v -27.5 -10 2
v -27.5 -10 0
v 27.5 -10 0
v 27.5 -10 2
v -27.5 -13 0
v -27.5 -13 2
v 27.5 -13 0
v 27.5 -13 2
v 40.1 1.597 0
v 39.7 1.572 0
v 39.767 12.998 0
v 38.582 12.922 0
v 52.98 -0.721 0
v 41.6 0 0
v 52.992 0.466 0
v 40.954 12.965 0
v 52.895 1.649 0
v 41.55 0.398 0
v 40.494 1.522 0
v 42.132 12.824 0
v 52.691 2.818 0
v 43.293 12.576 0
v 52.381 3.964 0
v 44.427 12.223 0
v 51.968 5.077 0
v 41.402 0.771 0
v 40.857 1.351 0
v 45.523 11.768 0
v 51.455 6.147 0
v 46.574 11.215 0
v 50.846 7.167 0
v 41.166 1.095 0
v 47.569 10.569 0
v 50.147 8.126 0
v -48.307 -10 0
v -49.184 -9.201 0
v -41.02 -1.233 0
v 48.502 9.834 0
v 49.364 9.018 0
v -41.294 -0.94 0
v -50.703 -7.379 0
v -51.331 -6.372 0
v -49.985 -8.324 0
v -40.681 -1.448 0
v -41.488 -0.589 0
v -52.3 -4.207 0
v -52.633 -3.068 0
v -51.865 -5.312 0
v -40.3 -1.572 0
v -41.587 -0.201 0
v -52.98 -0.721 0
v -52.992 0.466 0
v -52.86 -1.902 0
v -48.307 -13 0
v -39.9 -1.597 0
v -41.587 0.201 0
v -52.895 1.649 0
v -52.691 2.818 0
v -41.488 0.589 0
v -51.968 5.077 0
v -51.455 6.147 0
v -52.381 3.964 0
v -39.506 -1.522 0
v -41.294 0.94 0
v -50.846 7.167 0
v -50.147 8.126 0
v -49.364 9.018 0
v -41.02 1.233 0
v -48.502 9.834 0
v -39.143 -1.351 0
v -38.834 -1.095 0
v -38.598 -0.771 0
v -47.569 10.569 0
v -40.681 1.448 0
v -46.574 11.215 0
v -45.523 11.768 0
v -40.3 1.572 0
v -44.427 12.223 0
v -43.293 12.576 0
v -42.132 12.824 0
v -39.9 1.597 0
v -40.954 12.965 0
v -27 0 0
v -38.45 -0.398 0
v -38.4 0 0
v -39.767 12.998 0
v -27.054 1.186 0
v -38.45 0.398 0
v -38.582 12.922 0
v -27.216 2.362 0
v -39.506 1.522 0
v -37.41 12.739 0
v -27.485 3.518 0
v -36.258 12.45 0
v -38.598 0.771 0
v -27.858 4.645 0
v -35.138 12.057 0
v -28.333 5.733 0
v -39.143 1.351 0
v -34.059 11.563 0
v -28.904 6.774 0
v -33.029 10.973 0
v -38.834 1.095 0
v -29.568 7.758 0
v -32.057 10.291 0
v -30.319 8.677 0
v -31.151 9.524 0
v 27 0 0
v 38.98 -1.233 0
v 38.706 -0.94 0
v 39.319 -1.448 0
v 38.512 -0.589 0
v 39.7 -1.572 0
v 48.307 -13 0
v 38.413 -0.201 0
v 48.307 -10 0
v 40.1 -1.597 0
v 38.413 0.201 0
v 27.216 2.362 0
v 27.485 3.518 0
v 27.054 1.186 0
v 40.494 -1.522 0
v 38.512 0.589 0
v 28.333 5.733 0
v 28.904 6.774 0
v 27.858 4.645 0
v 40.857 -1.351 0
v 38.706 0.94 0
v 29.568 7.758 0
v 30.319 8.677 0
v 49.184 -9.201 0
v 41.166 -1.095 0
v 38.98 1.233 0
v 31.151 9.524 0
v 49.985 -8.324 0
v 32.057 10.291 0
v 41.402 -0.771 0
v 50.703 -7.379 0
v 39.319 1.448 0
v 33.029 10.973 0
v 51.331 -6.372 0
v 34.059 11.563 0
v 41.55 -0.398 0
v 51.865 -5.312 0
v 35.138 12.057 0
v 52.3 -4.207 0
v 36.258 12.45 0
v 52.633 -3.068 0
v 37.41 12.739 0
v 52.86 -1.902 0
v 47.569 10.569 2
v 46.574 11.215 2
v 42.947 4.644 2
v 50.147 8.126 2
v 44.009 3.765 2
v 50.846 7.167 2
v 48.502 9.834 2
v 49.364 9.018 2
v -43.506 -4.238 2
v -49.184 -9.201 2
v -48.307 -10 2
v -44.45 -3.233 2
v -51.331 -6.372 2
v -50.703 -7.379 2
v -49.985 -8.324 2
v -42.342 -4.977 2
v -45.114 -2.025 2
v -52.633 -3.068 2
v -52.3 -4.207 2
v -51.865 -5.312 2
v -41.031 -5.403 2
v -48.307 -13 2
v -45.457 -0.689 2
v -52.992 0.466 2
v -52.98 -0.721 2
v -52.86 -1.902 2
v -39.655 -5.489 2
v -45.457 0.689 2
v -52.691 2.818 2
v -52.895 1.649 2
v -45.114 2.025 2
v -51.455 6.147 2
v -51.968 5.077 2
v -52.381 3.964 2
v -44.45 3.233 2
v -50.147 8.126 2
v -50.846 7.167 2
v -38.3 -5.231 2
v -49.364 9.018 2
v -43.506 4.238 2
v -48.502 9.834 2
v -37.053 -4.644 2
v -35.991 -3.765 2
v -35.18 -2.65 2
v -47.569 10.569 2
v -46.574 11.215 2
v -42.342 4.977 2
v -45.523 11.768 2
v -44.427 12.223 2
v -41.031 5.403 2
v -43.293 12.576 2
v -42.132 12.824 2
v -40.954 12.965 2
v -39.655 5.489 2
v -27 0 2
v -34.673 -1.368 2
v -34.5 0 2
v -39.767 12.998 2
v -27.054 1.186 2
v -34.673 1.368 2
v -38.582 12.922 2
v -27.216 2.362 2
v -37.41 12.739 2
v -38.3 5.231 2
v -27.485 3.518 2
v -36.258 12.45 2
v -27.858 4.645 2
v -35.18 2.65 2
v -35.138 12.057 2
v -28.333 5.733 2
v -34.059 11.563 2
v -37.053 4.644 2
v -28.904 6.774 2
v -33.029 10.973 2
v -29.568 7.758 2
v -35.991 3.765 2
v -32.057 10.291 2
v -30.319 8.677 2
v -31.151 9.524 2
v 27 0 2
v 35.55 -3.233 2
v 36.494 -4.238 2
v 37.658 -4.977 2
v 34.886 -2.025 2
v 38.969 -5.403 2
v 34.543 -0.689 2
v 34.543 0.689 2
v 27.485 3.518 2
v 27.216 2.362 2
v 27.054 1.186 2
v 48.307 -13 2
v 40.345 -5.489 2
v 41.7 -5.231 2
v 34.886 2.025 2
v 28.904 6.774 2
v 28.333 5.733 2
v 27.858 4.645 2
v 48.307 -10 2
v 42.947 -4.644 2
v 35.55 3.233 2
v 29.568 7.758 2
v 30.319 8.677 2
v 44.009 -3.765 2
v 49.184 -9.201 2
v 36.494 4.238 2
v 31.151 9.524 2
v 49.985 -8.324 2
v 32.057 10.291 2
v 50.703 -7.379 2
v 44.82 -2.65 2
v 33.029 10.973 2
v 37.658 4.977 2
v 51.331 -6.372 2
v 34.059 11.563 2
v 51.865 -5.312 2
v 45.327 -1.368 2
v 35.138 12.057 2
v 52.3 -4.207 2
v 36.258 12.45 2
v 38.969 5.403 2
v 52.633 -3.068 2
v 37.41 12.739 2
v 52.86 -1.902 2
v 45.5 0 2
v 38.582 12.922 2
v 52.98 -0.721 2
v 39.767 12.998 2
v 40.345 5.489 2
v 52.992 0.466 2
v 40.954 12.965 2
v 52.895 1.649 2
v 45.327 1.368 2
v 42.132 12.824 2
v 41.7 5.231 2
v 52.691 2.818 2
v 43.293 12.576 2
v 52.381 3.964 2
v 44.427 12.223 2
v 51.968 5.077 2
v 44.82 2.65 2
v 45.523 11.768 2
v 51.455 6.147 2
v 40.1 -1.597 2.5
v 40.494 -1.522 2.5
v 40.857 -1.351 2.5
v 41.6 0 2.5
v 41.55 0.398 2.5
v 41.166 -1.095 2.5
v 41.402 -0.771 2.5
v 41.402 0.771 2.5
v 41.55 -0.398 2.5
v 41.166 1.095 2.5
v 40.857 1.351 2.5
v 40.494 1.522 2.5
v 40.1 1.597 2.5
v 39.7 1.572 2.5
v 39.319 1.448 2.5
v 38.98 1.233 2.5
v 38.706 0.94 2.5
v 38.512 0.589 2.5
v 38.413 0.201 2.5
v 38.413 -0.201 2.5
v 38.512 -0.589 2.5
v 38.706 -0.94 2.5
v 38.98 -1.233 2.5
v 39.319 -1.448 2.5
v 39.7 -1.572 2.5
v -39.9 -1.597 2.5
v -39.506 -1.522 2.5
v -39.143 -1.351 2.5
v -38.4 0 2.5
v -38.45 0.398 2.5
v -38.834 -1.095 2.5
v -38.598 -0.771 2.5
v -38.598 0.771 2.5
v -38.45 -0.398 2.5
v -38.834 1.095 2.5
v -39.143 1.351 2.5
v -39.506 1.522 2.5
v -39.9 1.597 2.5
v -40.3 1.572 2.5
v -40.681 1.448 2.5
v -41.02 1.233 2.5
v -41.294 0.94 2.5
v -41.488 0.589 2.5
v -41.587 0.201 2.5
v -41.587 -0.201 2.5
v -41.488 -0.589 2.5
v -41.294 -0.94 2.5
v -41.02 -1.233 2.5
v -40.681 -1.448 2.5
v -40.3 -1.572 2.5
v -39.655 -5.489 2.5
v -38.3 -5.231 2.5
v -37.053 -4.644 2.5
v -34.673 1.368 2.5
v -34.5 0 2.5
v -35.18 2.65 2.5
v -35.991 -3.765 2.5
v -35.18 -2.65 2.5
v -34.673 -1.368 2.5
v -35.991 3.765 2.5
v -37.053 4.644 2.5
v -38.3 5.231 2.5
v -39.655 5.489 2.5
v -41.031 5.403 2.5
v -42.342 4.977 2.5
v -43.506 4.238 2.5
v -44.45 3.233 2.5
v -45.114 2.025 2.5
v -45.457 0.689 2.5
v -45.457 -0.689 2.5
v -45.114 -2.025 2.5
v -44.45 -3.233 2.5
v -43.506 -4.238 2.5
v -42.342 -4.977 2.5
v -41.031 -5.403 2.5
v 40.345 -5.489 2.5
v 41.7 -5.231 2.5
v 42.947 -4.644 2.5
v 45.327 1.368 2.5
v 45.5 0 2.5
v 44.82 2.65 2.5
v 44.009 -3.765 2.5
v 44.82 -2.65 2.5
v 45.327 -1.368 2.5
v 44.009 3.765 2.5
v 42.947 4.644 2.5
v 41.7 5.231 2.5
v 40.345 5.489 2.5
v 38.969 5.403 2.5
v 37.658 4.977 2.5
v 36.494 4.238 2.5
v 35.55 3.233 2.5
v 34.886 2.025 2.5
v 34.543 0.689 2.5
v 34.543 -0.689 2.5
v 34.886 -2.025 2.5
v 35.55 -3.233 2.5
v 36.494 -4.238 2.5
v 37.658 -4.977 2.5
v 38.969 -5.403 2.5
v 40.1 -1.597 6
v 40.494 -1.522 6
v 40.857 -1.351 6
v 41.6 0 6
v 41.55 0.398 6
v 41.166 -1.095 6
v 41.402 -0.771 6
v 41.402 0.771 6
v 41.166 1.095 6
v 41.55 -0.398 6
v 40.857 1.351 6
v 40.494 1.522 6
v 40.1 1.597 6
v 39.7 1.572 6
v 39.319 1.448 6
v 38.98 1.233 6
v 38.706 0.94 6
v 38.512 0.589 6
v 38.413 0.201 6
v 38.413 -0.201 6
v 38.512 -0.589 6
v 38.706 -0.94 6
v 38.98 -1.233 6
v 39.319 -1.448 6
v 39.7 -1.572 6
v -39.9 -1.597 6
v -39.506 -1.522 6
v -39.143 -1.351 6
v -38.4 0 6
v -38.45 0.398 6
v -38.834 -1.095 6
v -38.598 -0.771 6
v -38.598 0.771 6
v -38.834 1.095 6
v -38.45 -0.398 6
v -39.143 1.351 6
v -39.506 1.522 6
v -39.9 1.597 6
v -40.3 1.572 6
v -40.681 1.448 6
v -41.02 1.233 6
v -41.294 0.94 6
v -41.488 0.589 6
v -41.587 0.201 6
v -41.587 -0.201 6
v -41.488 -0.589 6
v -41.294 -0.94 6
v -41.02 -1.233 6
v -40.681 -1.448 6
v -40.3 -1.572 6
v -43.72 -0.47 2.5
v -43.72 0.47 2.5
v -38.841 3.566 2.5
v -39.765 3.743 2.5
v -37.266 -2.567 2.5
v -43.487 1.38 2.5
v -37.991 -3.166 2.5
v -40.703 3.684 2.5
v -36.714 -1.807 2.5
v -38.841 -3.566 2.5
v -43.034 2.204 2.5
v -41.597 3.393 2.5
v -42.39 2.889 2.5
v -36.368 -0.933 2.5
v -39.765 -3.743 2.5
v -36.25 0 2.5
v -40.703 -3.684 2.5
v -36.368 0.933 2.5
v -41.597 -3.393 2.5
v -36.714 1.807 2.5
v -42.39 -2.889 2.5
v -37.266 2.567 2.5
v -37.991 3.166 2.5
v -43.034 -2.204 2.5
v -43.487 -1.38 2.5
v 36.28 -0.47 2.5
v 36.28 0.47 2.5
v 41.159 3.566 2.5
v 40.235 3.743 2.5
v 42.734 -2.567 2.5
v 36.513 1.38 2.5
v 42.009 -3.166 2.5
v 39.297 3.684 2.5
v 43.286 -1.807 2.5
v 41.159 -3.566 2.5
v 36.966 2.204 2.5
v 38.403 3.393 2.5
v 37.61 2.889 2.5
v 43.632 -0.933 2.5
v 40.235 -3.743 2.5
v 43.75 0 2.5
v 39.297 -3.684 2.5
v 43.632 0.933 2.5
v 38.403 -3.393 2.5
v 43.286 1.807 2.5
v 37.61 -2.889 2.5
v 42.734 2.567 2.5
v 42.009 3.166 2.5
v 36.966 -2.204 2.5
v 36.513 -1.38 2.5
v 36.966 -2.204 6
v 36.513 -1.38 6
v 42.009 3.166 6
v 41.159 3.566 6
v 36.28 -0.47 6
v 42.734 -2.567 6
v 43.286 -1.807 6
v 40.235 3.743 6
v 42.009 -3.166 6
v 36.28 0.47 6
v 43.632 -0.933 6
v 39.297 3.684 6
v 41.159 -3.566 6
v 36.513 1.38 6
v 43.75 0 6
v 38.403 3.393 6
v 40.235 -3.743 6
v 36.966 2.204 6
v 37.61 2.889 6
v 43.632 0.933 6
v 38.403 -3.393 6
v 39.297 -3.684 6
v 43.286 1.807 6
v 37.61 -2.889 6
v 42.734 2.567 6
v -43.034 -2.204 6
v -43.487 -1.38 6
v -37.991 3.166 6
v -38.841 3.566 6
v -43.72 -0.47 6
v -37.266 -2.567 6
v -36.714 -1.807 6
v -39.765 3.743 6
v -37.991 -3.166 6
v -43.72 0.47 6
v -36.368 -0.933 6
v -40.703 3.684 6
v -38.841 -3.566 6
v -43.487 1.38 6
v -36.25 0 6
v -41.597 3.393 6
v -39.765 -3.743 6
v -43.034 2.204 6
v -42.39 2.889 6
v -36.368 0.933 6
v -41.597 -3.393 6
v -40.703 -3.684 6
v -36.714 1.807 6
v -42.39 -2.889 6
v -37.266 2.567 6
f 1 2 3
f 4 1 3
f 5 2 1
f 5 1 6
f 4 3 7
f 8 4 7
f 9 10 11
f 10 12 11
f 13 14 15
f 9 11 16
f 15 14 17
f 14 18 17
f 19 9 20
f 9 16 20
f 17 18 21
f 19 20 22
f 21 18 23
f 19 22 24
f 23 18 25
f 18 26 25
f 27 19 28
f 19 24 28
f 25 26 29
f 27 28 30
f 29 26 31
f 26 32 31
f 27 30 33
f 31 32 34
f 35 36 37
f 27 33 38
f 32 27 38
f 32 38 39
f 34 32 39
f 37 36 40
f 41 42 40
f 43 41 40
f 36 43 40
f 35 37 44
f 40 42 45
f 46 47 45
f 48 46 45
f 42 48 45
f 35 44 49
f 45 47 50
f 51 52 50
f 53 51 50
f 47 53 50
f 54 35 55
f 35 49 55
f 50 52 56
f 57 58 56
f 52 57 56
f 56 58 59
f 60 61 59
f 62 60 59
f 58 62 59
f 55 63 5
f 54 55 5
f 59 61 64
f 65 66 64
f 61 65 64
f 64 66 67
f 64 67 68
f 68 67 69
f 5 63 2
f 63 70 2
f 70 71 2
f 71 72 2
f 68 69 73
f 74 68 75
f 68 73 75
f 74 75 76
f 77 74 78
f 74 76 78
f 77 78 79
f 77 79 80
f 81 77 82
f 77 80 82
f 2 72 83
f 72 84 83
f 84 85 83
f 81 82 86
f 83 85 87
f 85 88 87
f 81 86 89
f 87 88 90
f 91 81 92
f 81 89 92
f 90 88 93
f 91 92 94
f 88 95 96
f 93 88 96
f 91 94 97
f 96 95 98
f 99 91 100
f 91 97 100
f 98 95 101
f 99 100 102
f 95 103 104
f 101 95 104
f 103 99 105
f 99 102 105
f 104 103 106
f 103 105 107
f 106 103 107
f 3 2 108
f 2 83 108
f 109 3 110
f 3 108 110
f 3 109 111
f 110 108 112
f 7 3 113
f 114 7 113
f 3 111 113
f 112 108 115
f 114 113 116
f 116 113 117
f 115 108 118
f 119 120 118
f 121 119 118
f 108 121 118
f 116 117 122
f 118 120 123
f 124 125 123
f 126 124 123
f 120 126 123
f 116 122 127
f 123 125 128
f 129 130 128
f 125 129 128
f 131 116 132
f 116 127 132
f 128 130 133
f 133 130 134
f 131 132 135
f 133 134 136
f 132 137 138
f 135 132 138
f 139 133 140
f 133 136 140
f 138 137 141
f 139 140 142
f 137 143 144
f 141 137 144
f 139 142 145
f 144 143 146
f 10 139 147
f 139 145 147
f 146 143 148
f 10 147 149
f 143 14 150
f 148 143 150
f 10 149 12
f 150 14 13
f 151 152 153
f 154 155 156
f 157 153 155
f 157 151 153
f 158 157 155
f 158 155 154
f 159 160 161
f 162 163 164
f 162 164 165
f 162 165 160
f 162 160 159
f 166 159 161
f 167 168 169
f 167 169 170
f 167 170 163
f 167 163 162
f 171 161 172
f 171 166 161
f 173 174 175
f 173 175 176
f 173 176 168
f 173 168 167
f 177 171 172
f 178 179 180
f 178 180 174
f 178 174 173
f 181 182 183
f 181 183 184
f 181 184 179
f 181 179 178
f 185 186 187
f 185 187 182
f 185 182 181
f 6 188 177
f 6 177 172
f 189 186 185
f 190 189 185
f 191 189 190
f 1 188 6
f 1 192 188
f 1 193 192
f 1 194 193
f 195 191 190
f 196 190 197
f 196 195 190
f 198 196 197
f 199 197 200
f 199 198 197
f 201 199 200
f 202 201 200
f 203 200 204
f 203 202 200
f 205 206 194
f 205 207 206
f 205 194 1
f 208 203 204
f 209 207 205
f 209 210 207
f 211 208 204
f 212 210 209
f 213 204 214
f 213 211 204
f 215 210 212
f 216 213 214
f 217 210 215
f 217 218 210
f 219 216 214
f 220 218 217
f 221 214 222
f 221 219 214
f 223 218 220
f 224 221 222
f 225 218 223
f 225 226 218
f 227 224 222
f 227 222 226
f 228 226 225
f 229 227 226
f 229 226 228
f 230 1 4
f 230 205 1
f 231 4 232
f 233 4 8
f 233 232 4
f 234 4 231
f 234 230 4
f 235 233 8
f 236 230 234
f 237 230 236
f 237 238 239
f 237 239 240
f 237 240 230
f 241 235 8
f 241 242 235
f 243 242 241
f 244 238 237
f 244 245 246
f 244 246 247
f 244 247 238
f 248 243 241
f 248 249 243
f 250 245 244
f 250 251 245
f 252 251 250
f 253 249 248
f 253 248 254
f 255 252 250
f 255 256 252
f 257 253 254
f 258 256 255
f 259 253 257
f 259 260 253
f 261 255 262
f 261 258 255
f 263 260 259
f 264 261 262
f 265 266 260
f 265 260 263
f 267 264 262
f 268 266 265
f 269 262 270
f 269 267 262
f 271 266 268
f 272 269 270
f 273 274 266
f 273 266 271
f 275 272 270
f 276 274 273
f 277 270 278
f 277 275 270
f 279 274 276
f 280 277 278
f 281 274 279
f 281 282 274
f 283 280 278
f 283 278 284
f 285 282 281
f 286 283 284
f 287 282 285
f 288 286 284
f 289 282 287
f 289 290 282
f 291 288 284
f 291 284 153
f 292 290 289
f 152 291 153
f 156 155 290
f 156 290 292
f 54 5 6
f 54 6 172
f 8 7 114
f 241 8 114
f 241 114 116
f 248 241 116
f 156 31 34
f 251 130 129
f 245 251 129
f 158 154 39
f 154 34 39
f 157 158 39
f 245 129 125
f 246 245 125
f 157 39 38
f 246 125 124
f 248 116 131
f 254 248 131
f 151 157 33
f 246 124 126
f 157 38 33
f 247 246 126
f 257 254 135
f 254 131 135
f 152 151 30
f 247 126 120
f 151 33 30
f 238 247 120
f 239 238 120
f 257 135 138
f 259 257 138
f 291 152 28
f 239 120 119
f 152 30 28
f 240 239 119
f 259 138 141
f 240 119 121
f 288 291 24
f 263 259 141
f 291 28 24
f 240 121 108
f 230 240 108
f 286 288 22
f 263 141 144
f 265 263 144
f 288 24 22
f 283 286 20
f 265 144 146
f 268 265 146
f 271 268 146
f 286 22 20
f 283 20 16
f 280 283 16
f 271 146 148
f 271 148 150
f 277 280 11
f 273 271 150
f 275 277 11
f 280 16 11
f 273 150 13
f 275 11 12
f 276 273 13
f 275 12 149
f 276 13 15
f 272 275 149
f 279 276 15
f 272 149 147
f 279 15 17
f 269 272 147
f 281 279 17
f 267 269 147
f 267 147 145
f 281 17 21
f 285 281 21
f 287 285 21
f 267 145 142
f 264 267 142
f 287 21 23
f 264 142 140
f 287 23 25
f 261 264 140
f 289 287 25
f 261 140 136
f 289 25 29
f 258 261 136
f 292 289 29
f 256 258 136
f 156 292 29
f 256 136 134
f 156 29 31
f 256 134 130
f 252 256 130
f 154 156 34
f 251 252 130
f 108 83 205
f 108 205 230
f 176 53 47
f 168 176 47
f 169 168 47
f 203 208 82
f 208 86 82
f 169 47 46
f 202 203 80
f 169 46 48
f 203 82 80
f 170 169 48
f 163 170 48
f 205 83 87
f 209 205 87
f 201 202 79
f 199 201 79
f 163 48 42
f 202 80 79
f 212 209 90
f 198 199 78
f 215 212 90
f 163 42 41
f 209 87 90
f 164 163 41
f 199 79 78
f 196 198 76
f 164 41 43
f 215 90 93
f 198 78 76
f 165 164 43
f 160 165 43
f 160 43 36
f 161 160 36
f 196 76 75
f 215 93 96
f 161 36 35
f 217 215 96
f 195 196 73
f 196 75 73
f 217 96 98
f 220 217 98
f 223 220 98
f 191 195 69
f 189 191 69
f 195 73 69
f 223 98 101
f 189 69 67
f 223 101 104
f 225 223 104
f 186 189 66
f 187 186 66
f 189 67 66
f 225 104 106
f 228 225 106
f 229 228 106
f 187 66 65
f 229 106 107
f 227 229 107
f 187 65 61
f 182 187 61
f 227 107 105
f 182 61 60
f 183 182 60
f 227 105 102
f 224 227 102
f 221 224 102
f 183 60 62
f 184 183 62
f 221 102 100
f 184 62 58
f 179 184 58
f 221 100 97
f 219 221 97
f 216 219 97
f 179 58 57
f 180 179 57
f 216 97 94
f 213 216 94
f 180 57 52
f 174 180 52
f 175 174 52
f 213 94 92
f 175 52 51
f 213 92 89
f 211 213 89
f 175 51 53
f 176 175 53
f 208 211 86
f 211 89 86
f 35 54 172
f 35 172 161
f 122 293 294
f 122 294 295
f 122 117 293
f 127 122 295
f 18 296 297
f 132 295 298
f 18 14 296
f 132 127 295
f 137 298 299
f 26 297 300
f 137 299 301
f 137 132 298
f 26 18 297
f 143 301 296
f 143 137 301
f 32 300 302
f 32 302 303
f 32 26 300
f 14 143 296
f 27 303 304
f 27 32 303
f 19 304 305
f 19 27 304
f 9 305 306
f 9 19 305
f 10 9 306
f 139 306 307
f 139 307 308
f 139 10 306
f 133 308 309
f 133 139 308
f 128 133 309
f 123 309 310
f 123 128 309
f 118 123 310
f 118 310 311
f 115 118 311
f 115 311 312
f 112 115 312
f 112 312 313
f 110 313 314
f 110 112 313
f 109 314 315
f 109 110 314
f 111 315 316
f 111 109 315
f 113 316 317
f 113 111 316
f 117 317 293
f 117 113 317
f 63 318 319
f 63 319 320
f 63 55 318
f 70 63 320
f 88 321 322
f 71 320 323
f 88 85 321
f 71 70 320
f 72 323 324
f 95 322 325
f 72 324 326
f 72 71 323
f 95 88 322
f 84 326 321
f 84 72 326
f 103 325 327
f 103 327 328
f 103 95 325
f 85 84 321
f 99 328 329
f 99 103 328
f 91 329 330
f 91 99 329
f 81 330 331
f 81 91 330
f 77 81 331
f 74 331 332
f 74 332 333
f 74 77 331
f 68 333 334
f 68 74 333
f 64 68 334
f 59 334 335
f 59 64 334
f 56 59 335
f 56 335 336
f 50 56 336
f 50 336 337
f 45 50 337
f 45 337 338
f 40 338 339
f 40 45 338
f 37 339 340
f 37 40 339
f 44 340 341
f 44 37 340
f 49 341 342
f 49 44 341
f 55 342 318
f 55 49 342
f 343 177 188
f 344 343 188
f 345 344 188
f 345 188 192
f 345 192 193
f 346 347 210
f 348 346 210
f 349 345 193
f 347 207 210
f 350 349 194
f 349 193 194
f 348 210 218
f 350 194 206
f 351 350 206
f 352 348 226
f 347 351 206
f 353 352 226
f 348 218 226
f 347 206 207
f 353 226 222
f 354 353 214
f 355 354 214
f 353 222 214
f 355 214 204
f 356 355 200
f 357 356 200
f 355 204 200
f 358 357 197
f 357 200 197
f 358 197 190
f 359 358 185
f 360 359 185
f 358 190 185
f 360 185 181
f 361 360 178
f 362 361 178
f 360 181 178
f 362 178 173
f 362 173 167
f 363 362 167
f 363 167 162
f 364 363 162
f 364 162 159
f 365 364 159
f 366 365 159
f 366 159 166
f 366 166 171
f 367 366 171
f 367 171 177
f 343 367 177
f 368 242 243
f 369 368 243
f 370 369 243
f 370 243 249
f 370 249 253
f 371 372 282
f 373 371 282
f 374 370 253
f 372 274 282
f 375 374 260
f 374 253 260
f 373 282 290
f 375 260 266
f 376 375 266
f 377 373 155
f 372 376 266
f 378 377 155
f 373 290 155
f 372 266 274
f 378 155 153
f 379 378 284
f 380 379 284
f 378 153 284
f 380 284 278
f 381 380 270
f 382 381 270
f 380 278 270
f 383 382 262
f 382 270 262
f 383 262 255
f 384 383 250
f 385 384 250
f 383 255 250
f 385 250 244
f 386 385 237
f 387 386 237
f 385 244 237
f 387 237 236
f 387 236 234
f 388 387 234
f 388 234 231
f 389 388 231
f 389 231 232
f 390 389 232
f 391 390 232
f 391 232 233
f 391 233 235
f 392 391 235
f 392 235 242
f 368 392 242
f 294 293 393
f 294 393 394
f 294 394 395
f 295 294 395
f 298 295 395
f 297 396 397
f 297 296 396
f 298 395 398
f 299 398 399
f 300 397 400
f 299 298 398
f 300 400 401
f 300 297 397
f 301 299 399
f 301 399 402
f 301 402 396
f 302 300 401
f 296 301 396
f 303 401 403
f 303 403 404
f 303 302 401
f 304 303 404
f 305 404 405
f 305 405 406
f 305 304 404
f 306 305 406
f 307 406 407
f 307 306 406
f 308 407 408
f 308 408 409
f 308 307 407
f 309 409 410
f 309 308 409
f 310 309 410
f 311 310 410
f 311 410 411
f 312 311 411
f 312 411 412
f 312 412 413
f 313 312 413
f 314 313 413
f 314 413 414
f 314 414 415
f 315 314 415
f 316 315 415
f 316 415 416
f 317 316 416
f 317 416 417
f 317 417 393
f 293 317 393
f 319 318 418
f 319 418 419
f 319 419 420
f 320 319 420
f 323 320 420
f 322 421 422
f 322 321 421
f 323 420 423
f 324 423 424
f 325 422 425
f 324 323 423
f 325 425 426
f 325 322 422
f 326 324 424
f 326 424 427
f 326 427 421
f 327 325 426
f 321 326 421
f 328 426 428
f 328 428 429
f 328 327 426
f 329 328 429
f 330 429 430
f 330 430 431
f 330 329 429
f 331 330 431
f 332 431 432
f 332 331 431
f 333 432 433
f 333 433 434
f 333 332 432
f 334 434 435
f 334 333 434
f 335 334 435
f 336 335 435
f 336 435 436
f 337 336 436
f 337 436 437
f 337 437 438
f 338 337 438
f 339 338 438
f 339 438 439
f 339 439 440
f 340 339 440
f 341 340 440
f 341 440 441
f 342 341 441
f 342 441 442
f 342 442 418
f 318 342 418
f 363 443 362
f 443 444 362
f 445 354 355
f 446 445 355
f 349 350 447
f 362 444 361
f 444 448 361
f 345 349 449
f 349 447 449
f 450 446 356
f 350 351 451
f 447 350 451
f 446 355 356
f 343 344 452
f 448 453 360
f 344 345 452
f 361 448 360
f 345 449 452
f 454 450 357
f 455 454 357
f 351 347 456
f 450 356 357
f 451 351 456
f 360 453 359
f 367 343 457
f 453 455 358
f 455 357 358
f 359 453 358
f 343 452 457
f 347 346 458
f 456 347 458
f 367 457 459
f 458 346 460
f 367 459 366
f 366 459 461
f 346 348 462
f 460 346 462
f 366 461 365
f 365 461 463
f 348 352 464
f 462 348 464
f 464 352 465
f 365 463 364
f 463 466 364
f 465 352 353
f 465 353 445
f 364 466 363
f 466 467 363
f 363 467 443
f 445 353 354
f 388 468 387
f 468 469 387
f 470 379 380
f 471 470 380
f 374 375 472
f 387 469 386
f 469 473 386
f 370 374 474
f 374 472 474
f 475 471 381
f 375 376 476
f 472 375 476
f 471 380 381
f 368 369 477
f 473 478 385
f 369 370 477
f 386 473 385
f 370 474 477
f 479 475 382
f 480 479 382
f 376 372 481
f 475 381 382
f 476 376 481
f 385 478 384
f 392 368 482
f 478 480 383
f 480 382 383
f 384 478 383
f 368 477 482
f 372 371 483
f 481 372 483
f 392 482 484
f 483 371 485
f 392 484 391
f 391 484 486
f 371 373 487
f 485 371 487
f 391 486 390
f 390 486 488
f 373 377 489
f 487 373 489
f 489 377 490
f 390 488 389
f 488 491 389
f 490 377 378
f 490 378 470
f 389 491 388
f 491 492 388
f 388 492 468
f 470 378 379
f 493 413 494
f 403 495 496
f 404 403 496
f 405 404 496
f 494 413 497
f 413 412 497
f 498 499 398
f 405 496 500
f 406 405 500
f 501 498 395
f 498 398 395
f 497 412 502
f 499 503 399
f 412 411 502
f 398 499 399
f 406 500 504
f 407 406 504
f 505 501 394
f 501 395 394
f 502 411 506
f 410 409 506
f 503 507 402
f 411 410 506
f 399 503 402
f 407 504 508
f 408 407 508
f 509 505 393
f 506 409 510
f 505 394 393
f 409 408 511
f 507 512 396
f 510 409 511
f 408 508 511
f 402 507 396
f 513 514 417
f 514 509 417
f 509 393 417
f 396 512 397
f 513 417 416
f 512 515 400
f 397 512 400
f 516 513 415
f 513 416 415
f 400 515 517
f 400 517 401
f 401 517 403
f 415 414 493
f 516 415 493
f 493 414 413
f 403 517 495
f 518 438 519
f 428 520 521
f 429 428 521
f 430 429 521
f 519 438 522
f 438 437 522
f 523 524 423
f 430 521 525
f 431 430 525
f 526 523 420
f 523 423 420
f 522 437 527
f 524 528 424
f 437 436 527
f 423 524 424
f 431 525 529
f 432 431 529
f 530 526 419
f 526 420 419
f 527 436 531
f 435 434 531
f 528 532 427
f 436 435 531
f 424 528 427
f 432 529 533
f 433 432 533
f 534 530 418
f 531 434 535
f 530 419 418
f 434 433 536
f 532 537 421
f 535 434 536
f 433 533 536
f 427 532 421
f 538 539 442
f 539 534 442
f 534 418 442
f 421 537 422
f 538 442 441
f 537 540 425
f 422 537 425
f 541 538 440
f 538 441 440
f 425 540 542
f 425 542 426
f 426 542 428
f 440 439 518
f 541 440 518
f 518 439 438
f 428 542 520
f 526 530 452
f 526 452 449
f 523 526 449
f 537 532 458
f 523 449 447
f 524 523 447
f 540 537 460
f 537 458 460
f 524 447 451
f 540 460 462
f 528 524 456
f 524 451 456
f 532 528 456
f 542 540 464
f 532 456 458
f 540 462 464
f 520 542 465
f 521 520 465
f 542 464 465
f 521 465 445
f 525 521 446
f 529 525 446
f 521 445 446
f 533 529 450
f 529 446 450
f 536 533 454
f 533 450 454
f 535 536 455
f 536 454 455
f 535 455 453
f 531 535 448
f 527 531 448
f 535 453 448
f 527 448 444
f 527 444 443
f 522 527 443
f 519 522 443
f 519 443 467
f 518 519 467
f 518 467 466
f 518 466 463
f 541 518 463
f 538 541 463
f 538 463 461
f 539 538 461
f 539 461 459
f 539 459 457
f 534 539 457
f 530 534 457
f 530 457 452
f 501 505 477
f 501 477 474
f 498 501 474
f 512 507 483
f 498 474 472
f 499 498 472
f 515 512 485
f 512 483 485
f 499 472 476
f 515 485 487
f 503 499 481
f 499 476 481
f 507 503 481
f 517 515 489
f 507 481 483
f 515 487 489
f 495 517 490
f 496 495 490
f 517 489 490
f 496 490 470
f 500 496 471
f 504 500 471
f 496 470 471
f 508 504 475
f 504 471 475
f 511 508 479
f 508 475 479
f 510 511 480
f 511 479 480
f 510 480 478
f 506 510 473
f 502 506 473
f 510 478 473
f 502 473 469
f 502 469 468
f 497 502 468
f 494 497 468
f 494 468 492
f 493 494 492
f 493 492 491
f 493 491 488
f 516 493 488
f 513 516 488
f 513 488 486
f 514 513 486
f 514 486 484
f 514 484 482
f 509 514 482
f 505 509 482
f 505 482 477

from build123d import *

# Parameters (mm, degrees)
SKETCH_R      = 1.6
PAD_DEPTH     = 2
SKETCH001_R   = 5.5
SKETCH001_R_2 = 1.6
PAD001_DEPTH  = 0.5
SKETCH002_R   = 3.75
SKETCH002_R_2 = 1.6
PAD002_DEPTH  = 3.5


with BuildPart() as part:
    # Sketch → Pad (new body)
    with BuildSketch(Plane.XY):
        with BuildLine():
            ThreePointArc((-27, 0), (-45.523309, 11.768307), (-48.306624, -10))
            Line((-48.306624, -13), (-48.306624, -10))
            Line((-27.5, -13), (-48.306624, -13))
            Line((-27.5, -10), (-27.5, -13))
            Line((-27.5, -10), (27.5, -10))
            Line((27.5, -10), (27.5, -13))
            Line((27.5, -13), (48.306624, -13))
            Line((48.306624, -13), (48.306624, -10))
            ThreePointArc((48.306624, -10), (45.523309, 11.768307), (27, 0))
            Line((-27, 0), (27, 0))
        make_face()
        with Locations((-40, 0)):
            Circle(SKETCH_R, mode=Mode.SUBTRACT)
        with Locations((40, 0)):
            Circle(SKETCH_R, mode=Mode.SUBTRACT)
    extrude(amount=PAD_DEPTH)

    # Sketch001 → Pad001 (new body)
    with BuildSketch(Plane.XY.offset(2)):
        with Locations((-40, 0)):
            Circle(SKETCH001_R)
        with Locations((-40, 0)):
            Circle(SKETCH001_R_2, mode=Mode.SUBTRACT)
        with Locations((40, 0)):
            Circle(SKETCH001_R)
        with Locations((40, 0)):
            Circle(SKETCH001_R_2, mode=Mode.SUBTRACT)
    extrude(amount=PAD001_DEPTH)

    # Sketch002 → Pad002 (new body)
    with BuildSketch(Plane.XY.offset(2.5)):
        with Locations((-40, 0)):
            Circle(SKETCH002_R)
        with Locations((-40, 0)):
            Circle(SKETCH002_R_2, mode=Mode.SUBTRACT)
        with Locations((40, 0)):
            Circle(SKETCH002_R)
        with Locations((40, 0)):
            Circle(SKETCH002_R_2, mode=Mode.SUBTRACT)
    extrude(amount=PAD002_DEPTH)


solid = part.part
